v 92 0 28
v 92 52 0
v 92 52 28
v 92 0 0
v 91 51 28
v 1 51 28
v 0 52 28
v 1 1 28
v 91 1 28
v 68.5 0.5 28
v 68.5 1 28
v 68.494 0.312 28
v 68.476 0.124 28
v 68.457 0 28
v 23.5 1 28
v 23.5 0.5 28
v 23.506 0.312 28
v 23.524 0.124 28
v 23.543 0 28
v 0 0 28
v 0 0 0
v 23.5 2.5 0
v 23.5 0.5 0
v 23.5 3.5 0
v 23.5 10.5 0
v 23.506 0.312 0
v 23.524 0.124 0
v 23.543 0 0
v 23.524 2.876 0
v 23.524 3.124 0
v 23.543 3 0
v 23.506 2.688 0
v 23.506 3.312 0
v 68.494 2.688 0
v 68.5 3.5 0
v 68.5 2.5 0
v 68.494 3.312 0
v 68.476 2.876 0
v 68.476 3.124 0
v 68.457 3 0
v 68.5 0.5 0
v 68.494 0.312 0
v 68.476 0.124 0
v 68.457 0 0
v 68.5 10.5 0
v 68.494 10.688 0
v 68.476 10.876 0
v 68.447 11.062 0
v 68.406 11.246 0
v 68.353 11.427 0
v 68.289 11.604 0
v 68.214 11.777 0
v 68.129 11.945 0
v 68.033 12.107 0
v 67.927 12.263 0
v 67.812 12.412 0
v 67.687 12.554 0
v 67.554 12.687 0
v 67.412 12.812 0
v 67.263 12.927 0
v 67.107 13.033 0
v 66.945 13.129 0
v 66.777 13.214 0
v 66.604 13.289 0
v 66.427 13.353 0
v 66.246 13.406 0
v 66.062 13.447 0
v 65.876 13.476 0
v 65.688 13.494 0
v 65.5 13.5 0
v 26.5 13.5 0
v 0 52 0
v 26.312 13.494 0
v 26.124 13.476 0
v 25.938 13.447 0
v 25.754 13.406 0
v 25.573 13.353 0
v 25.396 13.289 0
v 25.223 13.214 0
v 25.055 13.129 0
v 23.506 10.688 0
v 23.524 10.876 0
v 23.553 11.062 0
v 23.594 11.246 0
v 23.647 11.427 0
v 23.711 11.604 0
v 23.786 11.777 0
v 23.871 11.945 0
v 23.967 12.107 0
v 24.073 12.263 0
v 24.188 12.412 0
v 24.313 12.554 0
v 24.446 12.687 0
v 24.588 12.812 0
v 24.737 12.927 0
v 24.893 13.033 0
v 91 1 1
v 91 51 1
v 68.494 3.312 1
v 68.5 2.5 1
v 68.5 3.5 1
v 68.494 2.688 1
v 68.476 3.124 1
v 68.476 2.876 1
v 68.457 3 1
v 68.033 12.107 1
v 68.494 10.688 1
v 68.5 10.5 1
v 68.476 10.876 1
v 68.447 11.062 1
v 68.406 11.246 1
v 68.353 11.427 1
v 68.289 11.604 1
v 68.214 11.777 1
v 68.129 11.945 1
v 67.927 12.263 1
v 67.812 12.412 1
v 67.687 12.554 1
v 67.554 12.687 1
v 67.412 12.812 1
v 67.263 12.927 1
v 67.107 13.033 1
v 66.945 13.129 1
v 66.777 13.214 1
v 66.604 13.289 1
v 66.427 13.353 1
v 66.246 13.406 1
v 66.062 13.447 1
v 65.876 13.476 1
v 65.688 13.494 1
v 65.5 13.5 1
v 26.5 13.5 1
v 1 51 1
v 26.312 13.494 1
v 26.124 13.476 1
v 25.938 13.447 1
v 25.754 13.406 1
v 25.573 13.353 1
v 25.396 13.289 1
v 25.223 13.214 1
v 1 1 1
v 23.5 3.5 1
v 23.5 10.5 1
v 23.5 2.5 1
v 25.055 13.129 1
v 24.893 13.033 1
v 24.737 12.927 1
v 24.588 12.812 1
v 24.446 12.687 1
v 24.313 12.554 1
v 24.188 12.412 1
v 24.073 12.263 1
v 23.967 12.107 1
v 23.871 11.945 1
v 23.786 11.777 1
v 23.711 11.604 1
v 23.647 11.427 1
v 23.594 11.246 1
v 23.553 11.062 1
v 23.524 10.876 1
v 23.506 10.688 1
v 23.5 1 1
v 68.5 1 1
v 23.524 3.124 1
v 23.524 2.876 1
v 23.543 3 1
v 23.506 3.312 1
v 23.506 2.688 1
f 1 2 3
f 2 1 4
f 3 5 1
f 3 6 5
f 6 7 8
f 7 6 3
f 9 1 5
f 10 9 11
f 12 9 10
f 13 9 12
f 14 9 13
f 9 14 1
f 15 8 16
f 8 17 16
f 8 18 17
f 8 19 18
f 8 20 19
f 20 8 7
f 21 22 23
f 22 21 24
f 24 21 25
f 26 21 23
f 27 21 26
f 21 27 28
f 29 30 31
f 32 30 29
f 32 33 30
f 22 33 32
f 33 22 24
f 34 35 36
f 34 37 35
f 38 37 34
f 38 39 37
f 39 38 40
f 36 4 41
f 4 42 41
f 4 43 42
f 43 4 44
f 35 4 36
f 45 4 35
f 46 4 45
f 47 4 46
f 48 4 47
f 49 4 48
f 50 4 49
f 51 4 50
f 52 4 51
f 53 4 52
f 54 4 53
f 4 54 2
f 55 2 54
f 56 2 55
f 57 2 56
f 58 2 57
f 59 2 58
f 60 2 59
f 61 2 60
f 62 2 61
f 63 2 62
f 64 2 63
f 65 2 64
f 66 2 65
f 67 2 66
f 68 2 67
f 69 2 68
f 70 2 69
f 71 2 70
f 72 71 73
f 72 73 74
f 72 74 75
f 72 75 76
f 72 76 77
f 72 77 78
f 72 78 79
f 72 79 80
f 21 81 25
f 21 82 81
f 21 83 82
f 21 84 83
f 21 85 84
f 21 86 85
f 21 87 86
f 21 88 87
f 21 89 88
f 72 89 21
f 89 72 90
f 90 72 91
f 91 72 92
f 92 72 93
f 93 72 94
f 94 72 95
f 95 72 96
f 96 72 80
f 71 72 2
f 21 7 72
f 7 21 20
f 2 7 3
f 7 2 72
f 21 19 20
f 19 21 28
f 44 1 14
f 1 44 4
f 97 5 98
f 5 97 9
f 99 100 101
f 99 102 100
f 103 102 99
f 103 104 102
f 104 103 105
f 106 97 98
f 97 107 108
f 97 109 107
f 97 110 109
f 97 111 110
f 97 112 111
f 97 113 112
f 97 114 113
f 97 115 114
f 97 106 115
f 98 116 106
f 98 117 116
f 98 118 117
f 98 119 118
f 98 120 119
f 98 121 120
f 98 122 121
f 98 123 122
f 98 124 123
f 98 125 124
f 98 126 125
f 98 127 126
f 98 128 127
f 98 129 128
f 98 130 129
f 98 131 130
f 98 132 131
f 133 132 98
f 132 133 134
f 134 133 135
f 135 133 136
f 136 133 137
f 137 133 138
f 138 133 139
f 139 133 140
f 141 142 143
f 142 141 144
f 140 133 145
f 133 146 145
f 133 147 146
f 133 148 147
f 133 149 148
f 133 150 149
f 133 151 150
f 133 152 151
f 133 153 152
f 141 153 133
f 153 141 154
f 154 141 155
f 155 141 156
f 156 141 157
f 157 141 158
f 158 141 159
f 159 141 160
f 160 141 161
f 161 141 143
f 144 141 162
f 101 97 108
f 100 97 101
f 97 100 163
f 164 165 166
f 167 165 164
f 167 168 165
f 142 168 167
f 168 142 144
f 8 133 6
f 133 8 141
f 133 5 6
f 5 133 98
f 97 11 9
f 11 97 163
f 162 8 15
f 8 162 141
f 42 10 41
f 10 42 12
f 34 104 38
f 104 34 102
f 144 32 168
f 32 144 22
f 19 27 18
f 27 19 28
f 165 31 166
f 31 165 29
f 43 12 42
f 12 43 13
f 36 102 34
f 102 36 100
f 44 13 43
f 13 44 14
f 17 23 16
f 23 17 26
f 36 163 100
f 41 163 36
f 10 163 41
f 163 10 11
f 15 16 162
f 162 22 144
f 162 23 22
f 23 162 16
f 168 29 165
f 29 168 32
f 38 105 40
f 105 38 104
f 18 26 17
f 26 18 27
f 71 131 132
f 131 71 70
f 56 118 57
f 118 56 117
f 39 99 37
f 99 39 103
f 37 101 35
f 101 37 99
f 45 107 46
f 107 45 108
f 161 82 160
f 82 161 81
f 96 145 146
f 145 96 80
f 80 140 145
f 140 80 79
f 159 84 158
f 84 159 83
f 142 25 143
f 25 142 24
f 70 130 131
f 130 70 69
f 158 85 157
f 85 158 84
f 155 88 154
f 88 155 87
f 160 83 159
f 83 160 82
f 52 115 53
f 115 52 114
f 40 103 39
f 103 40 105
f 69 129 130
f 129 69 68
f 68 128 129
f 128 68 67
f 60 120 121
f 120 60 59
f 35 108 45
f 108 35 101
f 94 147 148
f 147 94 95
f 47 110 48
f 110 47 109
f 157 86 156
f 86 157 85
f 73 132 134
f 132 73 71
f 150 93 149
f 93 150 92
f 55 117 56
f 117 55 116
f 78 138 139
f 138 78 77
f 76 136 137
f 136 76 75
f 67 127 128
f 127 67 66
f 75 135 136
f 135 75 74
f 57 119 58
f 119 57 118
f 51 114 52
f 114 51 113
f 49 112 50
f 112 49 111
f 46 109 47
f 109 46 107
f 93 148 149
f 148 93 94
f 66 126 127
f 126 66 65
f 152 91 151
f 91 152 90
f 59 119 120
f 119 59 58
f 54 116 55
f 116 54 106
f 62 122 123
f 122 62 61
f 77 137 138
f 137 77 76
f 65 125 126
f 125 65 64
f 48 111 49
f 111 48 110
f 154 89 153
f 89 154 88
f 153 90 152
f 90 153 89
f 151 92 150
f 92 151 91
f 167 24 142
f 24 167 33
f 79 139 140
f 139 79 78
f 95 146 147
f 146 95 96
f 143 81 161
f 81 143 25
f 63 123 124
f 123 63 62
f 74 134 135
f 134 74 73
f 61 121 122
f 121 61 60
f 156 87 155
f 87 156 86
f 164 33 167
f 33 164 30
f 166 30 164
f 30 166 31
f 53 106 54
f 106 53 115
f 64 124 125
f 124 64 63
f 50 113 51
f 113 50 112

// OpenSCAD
include <boardgame_insert_toolkit_lib.2.scad>;

// determines whether lids are output.
g_b_print_lid = true;

// determines whether boxes are output.
g_b_print_box = true; 

// Focus on one box
g_isolated_print_box = ""; 

// Used to visualize how all of the boxes fit together. 
g_b_visualization = false;          
        
// this is the outer wall thickness. 
//Default = 1.5mm
g_wall_thickness = 1.0;

// The tolerance value is extra space put between planes of the lid and box that fit together.
// Increase the tolerance to loosen the fit and decrease it to tighten it.
//
// Note that the tolerance is applied exclusively to the lid.
// So if the lid is too tight or too loose, change this value ( up for looser fit, down for tighter fit ) and 
// you only need to reprint the lid.
// 
// The exception is the stackable box, where the bottom of the box is the lid of the box below,
// in which case the tolerance also affects that box bottom.
//
g_tolerance = 0.15;

// This adjusts the position of the lid detents downward. 
// The larger the value, the bigger the gap between the lid and the box.
g_tolerance_detents_pos = 0.1;

aw_size_x = 92.0;
aw_size_y = 52.0;
aw_size_z = 28.0;


data =
  [
    [
      "simple box",
      [
        [ BOX_SIZE_XYZ, [aw_size_x, aw_size_y, aw_size_z] ],
        [ BOX_NO_LID_B, t],
        [
          BOX_COMPONENT,
          [
            [
              CMP_COMPARTMENT_SIZE_XYZ,
              [
                (aw_size_x - 2.0),
                (aw_size_y - 2.0),
                aw_size_z - g_wall_thickness
              ]
            ],
            [ CMP_NUM_COMPARTMENTS_XY, [1, 1] ],
            [ POSITION_XY, [0, 0] ],
            [ CMP_CUTOUT_SIDES_4B,   [t,f,f,f]],
            //[ CMP_CUTOUT_DEPTH_PCT,  20],
            //[ CMP_CUTOUT_WIDTH_PCT,  50],
            //[ CMP_CUTOUT_HEIGHT_PCT, 100], 
            //[ CMP_SHAPE_ROTATED_B, t ],
            //[ CMP_SHAPE, FILLET ],
            //[ CMP_FILLET_RADIUS, 5.0 ],
          ]
        ],
      ]
    ]
  ];

MakeAll();
